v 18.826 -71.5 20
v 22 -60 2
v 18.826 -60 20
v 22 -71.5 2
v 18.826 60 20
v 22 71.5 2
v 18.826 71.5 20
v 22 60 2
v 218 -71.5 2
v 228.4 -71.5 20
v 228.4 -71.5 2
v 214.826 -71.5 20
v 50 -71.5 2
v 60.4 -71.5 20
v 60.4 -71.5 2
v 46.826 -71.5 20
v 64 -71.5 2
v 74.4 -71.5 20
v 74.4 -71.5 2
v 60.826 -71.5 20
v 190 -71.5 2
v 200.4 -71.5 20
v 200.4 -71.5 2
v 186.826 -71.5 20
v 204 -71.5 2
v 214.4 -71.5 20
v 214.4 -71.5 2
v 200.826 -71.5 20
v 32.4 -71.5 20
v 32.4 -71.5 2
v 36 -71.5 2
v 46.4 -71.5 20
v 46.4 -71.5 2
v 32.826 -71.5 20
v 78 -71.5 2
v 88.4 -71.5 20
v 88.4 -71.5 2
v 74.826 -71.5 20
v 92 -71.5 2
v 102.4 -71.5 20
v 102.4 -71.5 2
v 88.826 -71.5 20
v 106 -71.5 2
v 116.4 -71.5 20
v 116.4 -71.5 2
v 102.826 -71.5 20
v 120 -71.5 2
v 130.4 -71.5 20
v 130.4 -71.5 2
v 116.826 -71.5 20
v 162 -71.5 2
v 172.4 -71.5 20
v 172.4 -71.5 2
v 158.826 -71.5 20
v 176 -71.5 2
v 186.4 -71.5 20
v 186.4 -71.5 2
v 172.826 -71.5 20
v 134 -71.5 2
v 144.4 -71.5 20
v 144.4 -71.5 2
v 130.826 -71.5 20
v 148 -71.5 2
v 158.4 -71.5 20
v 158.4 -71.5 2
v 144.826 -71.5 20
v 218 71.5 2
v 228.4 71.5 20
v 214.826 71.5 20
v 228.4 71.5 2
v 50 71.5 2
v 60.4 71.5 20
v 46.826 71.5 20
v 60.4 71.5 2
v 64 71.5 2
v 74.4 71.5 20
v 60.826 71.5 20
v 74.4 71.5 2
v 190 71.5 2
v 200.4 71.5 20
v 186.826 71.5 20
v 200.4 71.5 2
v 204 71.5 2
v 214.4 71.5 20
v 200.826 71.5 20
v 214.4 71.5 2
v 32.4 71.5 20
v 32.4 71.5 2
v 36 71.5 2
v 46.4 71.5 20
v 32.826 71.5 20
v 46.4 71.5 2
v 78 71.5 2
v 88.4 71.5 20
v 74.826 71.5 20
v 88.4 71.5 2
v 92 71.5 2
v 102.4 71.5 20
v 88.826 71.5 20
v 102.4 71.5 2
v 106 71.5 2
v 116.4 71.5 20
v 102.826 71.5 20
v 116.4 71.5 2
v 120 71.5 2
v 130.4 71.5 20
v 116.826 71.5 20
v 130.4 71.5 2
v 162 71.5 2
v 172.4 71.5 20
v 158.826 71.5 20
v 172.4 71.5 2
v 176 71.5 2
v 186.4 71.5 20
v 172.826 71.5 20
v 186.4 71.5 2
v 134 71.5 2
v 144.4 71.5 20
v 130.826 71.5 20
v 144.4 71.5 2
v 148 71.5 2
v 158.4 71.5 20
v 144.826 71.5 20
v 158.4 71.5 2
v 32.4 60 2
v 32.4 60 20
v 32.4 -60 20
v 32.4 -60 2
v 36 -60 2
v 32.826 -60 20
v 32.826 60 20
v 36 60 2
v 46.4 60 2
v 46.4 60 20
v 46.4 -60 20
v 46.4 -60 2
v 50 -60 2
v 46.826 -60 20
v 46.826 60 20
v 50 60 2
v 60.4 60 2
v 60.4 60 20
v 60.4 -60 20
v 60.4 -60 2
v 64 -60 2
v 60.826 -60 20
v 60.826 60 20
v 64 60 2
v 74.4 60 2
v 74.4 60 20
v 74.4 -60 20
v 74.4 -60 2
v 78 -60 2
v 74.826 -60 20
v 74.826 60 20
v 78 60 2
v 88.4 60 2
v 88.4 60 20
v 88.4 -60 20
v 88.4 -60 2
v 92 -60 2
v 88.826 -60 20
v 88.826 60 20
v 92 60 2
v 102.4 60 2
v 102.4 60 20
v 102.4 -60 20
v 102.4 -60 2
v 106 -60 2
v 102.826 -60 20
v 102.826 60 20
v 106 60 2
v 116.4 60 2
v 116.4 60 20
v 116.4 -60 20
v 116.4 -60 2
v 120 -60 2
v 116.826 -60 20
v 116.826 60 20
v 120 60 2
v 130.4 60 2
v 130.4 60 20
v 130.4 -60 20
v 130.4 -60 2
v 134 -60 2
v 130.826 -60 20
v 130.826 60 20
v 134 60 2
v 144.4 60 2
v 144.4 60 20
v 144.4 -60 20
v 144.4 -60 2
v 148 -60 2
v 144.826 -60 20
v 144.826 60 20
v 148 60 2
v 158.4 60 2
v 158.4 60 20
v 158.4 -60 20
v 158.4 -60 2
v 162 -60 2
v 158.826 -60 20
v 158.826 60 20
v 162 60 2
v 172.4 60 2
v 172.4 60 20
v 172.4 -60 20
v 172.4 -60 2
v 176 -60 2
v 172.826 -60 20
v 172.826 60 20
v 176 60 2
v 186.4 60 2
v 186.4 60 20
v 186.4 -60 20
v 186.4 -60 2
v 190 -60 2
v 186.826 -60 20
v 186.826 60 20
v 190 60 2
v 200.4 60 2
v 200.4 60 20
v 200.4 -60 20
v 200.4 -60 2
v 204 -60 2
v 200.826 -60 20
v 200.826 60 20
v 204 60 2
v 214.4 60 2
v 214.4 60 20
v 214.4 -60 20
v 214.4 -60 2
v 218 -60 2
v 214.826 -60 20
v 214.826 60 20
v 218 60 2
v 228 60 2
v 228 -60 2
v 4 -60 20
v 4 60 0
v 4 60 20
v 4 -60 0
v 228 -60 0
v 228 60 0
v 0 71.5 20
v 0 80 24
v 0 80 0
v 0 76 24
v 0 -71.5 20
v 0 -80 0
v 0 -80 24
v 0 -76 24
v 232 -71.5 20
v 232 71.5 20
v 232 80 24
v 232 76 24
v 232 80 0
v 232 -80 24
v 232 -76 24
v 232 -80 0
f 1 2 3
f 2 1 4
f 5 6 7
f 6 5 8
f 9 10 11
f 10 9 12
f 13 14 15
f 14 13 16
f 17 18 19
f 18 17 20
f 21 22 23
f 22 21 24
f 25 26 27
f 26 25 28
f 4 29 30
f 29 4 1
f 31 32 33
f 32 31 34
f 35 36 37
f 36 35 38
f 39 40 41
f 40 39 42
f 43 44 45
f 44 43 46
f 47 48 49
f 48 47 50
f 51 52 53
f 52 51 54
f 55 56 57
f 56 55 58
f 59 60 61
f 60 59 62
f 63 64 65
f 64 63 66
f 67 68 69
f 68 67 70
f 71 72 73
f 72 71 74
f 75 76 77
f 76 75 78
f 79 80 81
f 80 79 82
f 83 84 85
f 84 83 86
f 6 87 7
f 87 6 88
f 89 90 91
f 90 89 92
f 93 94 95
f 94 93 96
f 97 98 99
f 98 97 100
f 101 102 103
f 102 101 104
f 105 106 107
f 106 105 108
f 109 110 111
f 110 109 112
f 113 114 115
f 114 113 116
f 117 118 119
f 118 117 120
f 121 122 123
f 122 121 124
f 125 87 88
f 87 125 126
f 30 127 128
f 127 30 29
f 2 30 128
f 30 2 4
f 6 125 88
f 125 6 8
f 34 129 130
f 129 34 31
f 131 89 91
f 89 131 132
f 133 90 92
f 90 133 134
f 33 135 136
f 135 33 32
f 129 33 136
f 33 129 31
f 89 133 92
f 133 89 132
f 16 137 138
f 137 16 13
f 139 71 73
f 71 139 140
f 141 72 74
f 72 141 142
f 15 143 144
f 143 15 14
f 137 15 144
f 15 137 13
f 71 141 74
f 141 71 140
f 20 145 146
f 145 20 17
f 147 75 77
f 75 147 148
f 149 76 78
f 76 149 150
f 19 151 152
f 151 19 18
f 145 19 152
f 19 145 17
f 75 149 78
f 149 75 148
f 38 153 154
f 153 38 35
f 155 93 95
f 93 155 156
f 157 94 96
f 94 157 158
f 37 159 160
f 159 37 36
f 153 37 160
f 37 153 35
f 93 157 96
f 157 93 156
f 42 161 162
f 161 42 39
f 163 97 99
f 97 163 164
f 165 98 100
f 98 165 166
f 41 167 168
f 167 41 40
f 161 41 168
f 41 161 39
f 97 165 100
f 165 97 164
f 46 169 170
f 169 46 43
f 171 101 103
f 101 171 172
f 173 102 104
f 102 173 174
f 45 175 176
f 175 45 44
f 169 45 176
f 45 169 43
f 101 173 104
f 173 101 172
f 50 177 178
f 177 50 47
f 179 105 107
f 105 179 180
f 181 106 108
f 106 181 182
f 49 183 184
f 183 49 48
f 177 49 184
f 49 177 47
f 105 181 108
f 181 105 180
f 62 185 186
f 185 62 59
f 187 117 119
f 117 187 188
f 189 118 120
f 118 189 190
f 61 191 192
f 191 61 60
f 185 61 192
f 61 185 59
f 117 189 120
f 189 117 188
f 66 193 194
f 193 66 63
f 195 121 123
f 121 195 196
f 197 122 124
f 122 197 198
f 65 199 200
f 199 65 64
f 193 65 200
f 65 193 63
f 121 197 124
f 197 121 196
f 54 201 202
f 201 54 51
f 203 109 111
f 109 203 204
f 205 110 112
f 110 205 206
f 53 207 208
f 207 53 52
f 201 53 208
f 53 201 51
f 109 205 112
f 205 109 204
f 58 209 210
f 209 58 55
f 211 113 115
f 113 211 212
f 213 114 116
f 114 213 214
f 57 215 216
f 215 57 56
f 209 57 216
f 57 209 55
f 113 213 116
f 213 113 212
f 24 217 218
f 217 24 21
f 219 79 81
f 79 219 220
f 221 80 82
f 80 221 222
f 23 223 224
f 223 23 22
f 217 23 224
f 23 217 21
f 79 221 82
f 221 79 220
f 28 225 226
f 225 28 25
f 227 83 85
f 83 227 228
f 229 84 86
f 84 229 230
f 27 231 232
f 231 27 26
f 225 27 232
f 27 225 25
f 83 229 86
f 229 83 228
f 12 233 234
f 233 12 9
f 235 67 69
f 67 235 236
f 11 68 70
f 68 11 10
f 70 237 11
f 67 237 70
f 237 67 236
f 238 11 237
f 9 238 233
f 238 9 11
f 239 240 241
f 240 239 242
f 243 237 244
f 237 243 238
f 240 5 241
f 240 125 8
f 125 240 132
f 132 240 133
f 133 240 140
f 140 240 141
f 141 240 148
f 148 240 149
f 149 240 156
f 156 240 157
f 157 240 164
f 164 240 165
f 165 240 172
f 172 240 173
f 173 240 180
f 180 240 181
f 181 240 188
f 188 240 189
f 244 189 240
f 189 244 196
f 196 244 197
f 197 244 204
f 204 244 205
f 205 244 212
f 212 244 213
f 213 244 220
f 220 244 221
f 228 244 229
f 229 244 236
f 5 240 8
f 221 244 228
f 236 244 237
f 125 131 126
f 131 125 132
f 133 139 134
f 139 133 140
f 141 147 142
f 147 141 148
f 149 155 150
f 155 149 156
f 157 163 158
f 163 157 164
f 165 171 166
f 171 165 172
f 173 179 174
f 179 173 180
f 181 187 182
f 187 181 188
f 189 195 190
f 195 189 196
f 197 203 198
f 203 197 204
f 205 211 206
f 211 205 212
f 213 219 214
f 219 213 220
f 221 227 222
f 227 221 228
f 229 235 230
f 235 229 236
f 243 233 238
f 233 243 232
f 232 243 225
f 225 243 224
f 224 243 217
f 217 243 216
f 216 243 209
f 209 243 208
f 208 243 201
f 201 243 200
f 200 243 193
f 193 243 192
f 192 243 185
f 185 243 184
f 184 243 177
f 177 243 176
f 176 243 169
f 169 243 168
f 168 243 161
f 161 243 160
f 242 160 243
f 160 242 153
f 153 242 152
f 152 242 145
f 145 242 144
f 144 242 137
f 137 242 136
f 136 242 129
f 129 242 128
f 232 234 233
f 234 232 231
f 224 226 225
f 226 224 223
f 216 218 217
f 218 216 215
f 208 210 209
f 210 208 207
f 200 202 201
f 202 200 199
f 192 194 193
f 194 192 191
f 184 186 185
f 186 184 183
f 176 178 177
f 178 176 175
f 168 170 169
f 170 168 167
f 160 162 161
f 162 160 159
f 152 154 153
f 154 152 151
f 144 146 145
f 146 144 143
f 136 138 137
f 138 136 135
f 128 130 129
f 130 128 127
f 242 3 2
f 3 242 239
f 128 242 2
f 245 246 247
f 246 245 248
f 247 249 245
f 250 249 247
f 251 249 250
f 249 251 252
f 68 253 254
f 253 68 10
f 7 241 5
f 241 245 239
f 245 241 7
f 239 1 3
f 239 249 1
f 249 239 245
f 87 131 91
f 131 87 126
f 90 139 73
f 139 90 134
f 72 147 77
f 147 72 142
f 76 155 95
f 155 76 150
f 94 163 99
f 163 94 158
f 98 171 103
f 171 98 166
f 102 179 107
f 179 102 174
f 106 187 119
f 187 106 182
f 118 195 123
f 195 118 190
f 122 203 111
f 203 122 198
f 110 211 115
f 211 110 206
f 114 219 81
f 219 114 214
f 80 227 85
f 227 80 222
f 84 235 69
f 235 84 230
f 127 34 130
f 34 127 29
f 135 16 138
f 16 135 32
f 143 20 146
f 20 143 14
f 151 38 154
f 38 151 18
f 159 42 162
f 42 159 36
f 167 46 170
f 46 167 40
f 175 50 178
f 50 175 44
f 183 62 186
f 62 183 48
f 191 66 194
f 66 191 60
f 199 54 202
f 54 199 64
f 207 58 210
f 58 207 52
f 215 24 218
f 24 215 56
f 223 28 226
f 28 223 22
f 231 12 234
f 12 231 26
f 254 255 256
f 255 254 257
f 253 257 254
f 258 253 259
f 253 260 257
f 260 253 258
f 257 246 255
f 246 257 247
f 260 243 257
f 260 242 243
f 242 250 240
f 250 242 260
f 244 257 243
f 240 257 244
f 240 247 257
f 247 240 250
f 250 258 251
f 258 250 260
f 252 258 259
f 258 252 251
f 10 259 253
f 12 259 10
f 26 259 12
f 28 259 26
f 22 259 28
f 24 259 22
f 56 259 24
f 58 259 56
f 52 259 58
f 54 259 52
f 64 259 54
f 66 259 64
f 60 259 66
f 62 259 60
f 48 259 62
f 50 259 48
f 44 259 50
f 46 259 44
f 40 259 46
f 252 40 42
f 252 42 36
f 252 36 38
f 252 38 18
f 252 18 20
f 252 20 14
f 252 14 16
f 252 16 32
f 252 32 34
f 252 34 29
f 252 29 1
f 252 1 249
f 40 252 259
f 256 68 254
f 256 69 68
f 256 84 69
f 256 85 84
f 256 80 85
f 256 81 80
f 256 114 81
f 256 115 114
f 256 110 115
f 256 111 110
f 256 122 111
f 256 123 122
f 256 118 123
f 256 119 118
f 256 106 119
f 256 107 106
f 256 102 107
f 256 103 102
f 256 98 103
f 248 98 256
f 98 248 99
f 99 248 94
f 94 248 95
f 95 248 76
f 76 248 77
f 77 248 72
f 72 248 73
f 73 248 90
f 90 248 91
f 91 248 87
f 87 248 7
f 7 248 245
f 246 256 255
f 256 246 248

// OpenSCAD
module jewelCase(tilt=false) {
   translate([0,-71.5,2]) rotate([0,tilt?-10:0,0]) cube([10.4,143,125]);
}

module jewelCaseSlot() {
   translate([0,0,0]) jewelCase(true);
   translate([0,0,0]) jewelCase(false);
}

difference() {
   union() {
      translate([0,-80,0]) rotate([0,0,0]) cube([232,160,20]);
      hull() {
        translate([0,-80,0]) rotate([0,0,0]) cube([232,8.5,20]);
        translate([0,-80,0]) rotate([0,0,0]) cube([232,4,24]);         
      } 
      hull() {
        translate([0,71.5,0]) rotate([0,0,0]) cube([232,8.5,20]);
        translate([0,76,0]) rotate([0,0,0]) cube([232,4,24]);         
      } 
       
   }
   union() {
      for(x=[22:14:230]) {
         translate([x,0,0]) jewelCaseSlot();
      }
      translate([4,-60,-10]) rotate([0,0,0]) cube([224,120,40]);
      
      
   }  
}
